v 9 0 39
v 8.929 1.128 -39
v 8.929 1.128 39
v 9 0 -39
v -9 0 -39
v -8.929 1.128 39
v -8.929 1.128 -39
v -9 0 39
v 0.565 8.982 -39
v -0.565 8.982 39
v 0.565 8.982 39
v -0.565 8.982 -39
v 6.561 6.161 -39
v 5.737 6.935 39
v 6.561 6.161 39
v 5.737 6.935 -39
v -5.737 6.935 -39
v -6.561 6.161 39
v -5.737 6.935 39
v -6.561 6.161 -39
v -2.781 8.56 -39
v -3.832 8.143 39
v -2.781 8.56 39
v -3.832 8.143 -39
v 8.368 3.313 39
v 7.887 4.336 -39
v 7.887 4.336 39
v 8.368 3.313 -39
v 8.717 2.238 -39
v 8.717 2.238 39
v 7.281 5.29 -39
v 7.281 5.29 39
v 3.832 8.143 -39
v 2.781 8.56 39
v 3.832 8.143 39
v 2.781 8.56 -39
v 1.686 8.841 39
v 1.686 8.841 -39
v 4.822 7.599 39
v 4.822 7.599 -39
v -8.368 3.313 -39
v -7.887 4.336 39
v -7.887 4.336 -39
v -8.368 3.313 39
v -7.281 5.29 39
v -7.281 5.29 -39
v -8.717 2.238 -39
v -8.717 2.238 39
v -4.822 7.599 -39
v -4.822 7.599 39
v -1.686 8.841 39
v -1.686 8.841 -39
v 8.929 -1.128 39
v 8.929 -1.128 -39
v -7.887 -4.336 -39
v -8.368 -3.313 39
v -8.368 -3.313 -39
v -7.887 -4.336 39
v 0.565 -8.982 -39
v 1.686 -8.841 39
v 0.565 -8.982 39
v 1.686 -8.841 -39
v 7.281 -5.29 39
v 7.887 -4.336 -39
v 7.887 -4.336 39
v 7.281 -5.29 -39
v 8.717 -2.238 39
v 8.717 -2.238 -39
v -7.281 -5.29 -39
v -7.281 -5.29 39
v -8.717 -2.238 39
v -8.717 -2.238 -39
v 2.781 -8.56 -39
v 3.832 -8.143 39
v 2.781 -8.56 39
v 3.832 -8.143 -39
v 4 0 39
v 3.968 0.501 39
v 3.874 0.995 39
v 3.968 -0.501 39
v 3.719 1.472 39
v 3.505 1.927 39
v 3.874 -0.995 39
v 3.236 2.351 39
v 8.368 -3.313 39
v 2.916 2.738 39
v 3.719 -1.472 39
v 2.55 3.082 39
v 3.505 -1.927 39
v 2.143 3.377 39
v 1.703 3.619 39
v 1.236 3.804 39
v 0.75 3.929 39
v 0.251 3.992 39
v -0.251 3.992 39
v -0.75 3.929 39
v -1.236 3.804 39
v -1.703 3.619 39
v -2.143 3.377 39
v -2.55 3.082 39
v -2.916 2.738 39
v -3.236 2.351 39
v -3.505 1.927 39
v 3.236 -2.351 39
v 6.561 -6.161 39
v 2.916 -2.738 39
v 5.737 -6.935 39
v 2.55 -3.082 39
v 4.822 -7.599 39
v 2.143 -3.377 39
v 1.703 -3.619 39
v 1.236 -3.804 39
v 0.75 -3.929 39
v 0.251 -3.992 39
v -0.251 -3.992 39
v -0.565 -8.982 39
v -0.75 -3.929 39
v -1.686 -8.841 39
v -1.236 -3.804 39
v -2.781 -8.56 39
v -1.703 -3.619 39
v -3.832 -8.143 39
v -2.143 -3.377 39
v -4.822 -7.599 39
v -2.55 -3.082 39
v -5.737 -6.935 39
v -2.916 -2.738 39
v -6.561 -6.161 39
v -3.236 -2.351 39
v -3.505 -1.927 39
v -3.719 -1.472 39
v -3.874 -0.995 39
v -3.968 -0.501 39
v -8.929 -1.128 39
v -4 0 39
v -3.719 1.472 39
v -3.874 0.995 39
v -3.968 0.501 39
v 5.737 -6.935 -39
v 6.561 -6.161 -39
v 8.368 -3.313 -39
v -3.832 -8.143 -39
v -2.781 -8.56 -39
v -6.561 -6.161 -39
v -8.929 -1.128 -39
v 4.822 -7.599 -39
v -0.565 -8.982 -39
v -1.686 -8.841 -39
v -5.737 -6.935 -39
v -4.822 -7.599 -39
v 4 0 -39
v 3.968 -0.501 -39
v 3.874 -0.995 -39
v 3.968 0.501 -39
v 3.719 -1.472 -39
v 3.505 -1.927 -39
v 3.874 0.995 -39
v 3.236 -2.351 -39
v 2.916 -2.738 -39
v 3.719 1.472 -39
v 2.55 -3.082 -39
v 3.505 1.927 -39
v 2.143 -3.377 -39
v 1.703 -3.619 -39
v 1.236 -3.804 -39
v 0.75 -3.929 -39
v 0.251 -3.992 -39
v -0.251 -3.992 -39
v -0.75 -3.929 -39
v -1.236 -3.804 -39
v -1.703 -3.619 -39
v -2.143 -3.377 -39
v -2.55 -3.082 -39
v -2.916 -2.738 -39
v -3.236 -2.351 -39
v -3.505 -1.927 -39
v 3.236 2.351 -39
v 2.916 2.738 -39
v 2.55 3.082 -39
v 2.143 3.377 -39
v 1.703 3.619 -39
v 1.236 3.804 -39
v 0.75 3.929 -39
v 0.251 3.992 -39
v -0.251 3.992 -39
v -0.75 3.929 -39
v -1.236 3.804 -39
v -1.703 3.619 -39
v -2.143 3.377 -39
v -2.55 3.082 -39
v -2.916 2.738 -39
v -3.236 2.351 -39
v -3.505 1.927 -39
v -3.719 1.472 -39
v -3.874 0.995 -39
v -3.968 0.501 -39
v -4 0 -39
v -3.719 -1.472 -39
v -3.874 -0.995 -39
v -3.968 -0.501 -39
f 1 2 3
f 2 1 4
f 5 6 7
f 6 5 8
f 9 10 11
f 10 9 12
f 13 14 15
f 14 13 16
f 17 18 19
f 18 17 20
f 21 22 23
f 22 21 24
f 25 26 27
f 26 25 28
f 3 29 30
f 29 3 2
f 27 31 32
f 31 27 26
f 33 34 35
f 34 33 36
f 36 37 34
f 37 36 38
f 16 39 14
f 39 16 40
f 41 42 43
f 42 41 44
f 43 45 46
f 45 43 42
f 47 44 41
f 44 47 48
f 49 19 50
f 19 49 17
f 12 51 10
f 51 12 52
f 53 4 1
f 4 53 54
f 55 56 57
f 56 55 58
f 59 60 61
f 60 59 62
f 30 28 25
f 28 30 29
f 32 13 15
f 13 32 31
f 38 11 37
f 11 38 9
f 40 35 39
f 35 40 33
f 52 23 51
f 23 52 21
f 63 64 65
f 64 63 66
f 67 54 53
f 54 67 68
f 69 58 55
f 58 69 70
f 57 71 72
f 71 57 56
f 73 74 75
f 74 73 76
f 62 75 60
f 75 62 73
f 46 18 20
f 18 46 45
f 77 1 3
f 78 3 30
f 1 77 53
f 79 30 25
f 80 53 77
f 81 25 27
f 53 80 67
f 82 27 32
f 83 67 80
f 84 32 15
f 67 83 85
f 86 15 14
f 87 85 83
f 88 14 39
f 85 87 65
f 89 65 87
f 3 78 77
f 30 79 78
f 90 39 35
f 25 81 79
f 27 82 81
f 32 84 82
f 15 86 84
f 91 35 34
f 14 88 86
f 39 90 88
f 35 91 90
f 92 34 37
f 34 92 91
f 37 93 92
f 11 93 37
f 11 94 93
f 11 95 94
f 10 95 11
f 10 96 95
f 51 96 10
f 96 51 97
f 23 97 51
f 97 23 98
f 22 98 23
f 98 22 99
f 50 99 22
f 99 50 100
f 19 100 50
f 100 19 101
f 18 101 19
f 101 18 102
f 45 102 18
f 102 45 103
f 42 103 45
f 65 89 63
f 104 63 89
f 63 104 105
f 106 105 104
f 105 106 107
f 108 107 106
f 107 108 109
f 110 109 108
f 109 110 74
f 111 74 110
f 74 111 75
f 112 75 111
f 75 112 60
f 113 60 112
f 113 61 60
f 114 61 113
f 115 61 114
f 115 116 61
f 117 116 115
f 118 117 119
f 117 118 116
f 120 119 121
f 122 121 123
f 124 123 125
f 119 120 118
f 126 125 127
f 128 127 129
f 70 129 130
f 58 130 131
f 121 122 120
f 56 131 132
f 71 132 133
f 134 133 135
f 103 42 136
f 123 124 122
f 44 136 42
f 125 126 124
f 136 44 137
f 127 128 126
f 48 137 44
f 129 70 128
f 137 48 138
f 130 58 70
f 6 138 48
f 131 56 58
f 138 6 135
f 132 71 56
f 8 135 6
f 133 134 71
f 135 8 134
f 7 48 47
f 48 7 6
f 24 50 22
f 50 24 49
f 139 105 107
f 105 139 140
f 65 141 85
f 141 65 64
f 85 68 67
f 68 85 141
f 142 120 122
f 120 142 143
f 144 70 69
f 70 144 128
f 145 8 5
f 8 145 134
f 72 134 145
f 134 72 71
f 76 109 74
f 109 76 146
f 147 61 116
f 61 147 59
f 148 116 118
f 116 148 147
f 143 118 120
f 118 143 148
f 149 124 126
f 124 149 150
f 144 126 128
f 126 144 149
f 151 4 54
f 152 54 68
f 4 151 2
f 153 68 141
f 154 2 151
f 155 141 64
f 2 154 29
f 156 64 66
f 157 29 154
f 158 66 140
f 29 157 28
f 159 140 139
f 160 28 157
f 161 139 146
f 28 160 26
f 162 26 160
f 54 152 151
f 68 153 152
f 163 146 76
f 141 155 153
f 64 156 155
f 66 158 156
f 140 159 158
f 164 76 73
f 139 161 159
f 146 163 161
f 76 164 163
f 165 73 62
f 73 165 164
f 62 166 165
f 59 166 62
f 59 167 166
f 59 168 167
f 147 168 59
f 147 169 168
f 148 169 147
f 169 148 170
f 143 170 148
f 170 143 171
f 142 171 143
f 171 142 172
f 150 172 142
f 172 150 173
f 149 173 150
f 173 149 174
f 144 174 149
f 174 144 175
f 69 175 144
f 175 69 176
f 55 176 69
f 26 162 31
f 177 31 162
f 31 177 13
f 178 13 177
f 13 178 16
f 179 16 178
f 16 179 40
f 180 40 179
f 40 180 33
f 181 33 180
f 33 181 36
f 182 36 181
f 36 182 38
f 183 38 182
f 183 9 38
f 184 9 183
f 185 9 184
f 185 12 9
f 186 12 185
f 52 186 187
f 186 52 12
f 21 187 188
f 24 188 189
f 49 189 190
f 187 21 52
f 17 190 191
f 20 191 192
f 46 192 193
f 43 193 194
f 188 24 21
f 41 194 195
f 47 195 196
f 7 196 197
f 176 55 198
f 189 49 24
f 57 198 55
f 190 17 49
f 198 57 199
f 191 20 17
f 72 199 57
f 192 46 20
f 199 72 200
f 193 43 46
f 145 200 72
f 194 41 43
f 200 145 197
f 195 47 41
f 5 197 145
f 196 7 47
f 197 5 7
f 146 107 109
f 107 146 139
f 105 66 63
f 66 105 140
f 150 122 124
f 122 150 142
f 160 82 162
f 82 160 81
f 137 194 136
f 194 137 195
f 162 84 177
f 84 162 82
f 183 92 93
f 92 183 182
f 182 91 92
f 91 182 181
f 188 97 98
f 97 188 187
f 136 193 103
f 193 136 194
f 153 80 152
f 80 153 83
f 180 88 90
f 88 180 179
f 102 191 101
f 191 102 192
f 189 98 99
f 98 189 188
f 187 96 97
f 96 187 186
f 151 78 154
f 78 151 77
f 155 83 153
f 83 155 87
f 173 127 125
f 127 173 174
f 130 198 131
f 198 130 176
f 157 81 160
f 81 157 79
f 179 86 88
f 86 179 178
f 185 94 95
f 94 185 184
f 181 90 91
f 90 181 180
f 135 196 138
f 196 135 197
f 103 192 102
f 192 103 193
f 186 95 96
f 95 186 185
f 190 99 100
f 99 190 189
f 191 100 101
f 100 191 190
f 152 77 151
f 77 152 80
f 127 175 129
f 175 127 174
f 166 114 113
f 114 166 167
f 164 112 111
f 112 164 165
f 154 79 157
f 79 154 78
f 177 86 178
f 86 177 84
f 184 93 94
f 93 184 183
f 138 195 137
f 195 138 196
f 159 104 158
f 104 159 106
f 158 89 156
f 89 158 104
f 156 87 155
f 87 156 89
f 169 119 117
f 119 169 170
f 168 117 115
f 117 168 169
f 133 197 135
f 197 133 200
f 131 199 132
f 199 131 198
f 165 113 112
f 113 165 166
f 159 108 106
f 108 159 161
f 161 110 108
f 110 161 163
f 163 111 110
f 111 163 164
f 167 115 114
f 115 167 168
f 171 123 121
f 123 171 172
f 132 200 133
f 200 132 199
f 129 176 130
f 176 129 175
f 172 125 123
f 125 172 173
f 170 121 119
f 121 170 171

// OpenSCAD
$fn = 50;


difference() {
	union() {
		translate(v = [0, 0, -39.0000000000]) {
			cylinder(h = 78, r = 9.0000000000);
		}
	}
	union() {
		translate(v = [0, 0, -100.0000000000]) {
			cylinder(h = 200, r = 4.0000000000);
		}
	}
}
